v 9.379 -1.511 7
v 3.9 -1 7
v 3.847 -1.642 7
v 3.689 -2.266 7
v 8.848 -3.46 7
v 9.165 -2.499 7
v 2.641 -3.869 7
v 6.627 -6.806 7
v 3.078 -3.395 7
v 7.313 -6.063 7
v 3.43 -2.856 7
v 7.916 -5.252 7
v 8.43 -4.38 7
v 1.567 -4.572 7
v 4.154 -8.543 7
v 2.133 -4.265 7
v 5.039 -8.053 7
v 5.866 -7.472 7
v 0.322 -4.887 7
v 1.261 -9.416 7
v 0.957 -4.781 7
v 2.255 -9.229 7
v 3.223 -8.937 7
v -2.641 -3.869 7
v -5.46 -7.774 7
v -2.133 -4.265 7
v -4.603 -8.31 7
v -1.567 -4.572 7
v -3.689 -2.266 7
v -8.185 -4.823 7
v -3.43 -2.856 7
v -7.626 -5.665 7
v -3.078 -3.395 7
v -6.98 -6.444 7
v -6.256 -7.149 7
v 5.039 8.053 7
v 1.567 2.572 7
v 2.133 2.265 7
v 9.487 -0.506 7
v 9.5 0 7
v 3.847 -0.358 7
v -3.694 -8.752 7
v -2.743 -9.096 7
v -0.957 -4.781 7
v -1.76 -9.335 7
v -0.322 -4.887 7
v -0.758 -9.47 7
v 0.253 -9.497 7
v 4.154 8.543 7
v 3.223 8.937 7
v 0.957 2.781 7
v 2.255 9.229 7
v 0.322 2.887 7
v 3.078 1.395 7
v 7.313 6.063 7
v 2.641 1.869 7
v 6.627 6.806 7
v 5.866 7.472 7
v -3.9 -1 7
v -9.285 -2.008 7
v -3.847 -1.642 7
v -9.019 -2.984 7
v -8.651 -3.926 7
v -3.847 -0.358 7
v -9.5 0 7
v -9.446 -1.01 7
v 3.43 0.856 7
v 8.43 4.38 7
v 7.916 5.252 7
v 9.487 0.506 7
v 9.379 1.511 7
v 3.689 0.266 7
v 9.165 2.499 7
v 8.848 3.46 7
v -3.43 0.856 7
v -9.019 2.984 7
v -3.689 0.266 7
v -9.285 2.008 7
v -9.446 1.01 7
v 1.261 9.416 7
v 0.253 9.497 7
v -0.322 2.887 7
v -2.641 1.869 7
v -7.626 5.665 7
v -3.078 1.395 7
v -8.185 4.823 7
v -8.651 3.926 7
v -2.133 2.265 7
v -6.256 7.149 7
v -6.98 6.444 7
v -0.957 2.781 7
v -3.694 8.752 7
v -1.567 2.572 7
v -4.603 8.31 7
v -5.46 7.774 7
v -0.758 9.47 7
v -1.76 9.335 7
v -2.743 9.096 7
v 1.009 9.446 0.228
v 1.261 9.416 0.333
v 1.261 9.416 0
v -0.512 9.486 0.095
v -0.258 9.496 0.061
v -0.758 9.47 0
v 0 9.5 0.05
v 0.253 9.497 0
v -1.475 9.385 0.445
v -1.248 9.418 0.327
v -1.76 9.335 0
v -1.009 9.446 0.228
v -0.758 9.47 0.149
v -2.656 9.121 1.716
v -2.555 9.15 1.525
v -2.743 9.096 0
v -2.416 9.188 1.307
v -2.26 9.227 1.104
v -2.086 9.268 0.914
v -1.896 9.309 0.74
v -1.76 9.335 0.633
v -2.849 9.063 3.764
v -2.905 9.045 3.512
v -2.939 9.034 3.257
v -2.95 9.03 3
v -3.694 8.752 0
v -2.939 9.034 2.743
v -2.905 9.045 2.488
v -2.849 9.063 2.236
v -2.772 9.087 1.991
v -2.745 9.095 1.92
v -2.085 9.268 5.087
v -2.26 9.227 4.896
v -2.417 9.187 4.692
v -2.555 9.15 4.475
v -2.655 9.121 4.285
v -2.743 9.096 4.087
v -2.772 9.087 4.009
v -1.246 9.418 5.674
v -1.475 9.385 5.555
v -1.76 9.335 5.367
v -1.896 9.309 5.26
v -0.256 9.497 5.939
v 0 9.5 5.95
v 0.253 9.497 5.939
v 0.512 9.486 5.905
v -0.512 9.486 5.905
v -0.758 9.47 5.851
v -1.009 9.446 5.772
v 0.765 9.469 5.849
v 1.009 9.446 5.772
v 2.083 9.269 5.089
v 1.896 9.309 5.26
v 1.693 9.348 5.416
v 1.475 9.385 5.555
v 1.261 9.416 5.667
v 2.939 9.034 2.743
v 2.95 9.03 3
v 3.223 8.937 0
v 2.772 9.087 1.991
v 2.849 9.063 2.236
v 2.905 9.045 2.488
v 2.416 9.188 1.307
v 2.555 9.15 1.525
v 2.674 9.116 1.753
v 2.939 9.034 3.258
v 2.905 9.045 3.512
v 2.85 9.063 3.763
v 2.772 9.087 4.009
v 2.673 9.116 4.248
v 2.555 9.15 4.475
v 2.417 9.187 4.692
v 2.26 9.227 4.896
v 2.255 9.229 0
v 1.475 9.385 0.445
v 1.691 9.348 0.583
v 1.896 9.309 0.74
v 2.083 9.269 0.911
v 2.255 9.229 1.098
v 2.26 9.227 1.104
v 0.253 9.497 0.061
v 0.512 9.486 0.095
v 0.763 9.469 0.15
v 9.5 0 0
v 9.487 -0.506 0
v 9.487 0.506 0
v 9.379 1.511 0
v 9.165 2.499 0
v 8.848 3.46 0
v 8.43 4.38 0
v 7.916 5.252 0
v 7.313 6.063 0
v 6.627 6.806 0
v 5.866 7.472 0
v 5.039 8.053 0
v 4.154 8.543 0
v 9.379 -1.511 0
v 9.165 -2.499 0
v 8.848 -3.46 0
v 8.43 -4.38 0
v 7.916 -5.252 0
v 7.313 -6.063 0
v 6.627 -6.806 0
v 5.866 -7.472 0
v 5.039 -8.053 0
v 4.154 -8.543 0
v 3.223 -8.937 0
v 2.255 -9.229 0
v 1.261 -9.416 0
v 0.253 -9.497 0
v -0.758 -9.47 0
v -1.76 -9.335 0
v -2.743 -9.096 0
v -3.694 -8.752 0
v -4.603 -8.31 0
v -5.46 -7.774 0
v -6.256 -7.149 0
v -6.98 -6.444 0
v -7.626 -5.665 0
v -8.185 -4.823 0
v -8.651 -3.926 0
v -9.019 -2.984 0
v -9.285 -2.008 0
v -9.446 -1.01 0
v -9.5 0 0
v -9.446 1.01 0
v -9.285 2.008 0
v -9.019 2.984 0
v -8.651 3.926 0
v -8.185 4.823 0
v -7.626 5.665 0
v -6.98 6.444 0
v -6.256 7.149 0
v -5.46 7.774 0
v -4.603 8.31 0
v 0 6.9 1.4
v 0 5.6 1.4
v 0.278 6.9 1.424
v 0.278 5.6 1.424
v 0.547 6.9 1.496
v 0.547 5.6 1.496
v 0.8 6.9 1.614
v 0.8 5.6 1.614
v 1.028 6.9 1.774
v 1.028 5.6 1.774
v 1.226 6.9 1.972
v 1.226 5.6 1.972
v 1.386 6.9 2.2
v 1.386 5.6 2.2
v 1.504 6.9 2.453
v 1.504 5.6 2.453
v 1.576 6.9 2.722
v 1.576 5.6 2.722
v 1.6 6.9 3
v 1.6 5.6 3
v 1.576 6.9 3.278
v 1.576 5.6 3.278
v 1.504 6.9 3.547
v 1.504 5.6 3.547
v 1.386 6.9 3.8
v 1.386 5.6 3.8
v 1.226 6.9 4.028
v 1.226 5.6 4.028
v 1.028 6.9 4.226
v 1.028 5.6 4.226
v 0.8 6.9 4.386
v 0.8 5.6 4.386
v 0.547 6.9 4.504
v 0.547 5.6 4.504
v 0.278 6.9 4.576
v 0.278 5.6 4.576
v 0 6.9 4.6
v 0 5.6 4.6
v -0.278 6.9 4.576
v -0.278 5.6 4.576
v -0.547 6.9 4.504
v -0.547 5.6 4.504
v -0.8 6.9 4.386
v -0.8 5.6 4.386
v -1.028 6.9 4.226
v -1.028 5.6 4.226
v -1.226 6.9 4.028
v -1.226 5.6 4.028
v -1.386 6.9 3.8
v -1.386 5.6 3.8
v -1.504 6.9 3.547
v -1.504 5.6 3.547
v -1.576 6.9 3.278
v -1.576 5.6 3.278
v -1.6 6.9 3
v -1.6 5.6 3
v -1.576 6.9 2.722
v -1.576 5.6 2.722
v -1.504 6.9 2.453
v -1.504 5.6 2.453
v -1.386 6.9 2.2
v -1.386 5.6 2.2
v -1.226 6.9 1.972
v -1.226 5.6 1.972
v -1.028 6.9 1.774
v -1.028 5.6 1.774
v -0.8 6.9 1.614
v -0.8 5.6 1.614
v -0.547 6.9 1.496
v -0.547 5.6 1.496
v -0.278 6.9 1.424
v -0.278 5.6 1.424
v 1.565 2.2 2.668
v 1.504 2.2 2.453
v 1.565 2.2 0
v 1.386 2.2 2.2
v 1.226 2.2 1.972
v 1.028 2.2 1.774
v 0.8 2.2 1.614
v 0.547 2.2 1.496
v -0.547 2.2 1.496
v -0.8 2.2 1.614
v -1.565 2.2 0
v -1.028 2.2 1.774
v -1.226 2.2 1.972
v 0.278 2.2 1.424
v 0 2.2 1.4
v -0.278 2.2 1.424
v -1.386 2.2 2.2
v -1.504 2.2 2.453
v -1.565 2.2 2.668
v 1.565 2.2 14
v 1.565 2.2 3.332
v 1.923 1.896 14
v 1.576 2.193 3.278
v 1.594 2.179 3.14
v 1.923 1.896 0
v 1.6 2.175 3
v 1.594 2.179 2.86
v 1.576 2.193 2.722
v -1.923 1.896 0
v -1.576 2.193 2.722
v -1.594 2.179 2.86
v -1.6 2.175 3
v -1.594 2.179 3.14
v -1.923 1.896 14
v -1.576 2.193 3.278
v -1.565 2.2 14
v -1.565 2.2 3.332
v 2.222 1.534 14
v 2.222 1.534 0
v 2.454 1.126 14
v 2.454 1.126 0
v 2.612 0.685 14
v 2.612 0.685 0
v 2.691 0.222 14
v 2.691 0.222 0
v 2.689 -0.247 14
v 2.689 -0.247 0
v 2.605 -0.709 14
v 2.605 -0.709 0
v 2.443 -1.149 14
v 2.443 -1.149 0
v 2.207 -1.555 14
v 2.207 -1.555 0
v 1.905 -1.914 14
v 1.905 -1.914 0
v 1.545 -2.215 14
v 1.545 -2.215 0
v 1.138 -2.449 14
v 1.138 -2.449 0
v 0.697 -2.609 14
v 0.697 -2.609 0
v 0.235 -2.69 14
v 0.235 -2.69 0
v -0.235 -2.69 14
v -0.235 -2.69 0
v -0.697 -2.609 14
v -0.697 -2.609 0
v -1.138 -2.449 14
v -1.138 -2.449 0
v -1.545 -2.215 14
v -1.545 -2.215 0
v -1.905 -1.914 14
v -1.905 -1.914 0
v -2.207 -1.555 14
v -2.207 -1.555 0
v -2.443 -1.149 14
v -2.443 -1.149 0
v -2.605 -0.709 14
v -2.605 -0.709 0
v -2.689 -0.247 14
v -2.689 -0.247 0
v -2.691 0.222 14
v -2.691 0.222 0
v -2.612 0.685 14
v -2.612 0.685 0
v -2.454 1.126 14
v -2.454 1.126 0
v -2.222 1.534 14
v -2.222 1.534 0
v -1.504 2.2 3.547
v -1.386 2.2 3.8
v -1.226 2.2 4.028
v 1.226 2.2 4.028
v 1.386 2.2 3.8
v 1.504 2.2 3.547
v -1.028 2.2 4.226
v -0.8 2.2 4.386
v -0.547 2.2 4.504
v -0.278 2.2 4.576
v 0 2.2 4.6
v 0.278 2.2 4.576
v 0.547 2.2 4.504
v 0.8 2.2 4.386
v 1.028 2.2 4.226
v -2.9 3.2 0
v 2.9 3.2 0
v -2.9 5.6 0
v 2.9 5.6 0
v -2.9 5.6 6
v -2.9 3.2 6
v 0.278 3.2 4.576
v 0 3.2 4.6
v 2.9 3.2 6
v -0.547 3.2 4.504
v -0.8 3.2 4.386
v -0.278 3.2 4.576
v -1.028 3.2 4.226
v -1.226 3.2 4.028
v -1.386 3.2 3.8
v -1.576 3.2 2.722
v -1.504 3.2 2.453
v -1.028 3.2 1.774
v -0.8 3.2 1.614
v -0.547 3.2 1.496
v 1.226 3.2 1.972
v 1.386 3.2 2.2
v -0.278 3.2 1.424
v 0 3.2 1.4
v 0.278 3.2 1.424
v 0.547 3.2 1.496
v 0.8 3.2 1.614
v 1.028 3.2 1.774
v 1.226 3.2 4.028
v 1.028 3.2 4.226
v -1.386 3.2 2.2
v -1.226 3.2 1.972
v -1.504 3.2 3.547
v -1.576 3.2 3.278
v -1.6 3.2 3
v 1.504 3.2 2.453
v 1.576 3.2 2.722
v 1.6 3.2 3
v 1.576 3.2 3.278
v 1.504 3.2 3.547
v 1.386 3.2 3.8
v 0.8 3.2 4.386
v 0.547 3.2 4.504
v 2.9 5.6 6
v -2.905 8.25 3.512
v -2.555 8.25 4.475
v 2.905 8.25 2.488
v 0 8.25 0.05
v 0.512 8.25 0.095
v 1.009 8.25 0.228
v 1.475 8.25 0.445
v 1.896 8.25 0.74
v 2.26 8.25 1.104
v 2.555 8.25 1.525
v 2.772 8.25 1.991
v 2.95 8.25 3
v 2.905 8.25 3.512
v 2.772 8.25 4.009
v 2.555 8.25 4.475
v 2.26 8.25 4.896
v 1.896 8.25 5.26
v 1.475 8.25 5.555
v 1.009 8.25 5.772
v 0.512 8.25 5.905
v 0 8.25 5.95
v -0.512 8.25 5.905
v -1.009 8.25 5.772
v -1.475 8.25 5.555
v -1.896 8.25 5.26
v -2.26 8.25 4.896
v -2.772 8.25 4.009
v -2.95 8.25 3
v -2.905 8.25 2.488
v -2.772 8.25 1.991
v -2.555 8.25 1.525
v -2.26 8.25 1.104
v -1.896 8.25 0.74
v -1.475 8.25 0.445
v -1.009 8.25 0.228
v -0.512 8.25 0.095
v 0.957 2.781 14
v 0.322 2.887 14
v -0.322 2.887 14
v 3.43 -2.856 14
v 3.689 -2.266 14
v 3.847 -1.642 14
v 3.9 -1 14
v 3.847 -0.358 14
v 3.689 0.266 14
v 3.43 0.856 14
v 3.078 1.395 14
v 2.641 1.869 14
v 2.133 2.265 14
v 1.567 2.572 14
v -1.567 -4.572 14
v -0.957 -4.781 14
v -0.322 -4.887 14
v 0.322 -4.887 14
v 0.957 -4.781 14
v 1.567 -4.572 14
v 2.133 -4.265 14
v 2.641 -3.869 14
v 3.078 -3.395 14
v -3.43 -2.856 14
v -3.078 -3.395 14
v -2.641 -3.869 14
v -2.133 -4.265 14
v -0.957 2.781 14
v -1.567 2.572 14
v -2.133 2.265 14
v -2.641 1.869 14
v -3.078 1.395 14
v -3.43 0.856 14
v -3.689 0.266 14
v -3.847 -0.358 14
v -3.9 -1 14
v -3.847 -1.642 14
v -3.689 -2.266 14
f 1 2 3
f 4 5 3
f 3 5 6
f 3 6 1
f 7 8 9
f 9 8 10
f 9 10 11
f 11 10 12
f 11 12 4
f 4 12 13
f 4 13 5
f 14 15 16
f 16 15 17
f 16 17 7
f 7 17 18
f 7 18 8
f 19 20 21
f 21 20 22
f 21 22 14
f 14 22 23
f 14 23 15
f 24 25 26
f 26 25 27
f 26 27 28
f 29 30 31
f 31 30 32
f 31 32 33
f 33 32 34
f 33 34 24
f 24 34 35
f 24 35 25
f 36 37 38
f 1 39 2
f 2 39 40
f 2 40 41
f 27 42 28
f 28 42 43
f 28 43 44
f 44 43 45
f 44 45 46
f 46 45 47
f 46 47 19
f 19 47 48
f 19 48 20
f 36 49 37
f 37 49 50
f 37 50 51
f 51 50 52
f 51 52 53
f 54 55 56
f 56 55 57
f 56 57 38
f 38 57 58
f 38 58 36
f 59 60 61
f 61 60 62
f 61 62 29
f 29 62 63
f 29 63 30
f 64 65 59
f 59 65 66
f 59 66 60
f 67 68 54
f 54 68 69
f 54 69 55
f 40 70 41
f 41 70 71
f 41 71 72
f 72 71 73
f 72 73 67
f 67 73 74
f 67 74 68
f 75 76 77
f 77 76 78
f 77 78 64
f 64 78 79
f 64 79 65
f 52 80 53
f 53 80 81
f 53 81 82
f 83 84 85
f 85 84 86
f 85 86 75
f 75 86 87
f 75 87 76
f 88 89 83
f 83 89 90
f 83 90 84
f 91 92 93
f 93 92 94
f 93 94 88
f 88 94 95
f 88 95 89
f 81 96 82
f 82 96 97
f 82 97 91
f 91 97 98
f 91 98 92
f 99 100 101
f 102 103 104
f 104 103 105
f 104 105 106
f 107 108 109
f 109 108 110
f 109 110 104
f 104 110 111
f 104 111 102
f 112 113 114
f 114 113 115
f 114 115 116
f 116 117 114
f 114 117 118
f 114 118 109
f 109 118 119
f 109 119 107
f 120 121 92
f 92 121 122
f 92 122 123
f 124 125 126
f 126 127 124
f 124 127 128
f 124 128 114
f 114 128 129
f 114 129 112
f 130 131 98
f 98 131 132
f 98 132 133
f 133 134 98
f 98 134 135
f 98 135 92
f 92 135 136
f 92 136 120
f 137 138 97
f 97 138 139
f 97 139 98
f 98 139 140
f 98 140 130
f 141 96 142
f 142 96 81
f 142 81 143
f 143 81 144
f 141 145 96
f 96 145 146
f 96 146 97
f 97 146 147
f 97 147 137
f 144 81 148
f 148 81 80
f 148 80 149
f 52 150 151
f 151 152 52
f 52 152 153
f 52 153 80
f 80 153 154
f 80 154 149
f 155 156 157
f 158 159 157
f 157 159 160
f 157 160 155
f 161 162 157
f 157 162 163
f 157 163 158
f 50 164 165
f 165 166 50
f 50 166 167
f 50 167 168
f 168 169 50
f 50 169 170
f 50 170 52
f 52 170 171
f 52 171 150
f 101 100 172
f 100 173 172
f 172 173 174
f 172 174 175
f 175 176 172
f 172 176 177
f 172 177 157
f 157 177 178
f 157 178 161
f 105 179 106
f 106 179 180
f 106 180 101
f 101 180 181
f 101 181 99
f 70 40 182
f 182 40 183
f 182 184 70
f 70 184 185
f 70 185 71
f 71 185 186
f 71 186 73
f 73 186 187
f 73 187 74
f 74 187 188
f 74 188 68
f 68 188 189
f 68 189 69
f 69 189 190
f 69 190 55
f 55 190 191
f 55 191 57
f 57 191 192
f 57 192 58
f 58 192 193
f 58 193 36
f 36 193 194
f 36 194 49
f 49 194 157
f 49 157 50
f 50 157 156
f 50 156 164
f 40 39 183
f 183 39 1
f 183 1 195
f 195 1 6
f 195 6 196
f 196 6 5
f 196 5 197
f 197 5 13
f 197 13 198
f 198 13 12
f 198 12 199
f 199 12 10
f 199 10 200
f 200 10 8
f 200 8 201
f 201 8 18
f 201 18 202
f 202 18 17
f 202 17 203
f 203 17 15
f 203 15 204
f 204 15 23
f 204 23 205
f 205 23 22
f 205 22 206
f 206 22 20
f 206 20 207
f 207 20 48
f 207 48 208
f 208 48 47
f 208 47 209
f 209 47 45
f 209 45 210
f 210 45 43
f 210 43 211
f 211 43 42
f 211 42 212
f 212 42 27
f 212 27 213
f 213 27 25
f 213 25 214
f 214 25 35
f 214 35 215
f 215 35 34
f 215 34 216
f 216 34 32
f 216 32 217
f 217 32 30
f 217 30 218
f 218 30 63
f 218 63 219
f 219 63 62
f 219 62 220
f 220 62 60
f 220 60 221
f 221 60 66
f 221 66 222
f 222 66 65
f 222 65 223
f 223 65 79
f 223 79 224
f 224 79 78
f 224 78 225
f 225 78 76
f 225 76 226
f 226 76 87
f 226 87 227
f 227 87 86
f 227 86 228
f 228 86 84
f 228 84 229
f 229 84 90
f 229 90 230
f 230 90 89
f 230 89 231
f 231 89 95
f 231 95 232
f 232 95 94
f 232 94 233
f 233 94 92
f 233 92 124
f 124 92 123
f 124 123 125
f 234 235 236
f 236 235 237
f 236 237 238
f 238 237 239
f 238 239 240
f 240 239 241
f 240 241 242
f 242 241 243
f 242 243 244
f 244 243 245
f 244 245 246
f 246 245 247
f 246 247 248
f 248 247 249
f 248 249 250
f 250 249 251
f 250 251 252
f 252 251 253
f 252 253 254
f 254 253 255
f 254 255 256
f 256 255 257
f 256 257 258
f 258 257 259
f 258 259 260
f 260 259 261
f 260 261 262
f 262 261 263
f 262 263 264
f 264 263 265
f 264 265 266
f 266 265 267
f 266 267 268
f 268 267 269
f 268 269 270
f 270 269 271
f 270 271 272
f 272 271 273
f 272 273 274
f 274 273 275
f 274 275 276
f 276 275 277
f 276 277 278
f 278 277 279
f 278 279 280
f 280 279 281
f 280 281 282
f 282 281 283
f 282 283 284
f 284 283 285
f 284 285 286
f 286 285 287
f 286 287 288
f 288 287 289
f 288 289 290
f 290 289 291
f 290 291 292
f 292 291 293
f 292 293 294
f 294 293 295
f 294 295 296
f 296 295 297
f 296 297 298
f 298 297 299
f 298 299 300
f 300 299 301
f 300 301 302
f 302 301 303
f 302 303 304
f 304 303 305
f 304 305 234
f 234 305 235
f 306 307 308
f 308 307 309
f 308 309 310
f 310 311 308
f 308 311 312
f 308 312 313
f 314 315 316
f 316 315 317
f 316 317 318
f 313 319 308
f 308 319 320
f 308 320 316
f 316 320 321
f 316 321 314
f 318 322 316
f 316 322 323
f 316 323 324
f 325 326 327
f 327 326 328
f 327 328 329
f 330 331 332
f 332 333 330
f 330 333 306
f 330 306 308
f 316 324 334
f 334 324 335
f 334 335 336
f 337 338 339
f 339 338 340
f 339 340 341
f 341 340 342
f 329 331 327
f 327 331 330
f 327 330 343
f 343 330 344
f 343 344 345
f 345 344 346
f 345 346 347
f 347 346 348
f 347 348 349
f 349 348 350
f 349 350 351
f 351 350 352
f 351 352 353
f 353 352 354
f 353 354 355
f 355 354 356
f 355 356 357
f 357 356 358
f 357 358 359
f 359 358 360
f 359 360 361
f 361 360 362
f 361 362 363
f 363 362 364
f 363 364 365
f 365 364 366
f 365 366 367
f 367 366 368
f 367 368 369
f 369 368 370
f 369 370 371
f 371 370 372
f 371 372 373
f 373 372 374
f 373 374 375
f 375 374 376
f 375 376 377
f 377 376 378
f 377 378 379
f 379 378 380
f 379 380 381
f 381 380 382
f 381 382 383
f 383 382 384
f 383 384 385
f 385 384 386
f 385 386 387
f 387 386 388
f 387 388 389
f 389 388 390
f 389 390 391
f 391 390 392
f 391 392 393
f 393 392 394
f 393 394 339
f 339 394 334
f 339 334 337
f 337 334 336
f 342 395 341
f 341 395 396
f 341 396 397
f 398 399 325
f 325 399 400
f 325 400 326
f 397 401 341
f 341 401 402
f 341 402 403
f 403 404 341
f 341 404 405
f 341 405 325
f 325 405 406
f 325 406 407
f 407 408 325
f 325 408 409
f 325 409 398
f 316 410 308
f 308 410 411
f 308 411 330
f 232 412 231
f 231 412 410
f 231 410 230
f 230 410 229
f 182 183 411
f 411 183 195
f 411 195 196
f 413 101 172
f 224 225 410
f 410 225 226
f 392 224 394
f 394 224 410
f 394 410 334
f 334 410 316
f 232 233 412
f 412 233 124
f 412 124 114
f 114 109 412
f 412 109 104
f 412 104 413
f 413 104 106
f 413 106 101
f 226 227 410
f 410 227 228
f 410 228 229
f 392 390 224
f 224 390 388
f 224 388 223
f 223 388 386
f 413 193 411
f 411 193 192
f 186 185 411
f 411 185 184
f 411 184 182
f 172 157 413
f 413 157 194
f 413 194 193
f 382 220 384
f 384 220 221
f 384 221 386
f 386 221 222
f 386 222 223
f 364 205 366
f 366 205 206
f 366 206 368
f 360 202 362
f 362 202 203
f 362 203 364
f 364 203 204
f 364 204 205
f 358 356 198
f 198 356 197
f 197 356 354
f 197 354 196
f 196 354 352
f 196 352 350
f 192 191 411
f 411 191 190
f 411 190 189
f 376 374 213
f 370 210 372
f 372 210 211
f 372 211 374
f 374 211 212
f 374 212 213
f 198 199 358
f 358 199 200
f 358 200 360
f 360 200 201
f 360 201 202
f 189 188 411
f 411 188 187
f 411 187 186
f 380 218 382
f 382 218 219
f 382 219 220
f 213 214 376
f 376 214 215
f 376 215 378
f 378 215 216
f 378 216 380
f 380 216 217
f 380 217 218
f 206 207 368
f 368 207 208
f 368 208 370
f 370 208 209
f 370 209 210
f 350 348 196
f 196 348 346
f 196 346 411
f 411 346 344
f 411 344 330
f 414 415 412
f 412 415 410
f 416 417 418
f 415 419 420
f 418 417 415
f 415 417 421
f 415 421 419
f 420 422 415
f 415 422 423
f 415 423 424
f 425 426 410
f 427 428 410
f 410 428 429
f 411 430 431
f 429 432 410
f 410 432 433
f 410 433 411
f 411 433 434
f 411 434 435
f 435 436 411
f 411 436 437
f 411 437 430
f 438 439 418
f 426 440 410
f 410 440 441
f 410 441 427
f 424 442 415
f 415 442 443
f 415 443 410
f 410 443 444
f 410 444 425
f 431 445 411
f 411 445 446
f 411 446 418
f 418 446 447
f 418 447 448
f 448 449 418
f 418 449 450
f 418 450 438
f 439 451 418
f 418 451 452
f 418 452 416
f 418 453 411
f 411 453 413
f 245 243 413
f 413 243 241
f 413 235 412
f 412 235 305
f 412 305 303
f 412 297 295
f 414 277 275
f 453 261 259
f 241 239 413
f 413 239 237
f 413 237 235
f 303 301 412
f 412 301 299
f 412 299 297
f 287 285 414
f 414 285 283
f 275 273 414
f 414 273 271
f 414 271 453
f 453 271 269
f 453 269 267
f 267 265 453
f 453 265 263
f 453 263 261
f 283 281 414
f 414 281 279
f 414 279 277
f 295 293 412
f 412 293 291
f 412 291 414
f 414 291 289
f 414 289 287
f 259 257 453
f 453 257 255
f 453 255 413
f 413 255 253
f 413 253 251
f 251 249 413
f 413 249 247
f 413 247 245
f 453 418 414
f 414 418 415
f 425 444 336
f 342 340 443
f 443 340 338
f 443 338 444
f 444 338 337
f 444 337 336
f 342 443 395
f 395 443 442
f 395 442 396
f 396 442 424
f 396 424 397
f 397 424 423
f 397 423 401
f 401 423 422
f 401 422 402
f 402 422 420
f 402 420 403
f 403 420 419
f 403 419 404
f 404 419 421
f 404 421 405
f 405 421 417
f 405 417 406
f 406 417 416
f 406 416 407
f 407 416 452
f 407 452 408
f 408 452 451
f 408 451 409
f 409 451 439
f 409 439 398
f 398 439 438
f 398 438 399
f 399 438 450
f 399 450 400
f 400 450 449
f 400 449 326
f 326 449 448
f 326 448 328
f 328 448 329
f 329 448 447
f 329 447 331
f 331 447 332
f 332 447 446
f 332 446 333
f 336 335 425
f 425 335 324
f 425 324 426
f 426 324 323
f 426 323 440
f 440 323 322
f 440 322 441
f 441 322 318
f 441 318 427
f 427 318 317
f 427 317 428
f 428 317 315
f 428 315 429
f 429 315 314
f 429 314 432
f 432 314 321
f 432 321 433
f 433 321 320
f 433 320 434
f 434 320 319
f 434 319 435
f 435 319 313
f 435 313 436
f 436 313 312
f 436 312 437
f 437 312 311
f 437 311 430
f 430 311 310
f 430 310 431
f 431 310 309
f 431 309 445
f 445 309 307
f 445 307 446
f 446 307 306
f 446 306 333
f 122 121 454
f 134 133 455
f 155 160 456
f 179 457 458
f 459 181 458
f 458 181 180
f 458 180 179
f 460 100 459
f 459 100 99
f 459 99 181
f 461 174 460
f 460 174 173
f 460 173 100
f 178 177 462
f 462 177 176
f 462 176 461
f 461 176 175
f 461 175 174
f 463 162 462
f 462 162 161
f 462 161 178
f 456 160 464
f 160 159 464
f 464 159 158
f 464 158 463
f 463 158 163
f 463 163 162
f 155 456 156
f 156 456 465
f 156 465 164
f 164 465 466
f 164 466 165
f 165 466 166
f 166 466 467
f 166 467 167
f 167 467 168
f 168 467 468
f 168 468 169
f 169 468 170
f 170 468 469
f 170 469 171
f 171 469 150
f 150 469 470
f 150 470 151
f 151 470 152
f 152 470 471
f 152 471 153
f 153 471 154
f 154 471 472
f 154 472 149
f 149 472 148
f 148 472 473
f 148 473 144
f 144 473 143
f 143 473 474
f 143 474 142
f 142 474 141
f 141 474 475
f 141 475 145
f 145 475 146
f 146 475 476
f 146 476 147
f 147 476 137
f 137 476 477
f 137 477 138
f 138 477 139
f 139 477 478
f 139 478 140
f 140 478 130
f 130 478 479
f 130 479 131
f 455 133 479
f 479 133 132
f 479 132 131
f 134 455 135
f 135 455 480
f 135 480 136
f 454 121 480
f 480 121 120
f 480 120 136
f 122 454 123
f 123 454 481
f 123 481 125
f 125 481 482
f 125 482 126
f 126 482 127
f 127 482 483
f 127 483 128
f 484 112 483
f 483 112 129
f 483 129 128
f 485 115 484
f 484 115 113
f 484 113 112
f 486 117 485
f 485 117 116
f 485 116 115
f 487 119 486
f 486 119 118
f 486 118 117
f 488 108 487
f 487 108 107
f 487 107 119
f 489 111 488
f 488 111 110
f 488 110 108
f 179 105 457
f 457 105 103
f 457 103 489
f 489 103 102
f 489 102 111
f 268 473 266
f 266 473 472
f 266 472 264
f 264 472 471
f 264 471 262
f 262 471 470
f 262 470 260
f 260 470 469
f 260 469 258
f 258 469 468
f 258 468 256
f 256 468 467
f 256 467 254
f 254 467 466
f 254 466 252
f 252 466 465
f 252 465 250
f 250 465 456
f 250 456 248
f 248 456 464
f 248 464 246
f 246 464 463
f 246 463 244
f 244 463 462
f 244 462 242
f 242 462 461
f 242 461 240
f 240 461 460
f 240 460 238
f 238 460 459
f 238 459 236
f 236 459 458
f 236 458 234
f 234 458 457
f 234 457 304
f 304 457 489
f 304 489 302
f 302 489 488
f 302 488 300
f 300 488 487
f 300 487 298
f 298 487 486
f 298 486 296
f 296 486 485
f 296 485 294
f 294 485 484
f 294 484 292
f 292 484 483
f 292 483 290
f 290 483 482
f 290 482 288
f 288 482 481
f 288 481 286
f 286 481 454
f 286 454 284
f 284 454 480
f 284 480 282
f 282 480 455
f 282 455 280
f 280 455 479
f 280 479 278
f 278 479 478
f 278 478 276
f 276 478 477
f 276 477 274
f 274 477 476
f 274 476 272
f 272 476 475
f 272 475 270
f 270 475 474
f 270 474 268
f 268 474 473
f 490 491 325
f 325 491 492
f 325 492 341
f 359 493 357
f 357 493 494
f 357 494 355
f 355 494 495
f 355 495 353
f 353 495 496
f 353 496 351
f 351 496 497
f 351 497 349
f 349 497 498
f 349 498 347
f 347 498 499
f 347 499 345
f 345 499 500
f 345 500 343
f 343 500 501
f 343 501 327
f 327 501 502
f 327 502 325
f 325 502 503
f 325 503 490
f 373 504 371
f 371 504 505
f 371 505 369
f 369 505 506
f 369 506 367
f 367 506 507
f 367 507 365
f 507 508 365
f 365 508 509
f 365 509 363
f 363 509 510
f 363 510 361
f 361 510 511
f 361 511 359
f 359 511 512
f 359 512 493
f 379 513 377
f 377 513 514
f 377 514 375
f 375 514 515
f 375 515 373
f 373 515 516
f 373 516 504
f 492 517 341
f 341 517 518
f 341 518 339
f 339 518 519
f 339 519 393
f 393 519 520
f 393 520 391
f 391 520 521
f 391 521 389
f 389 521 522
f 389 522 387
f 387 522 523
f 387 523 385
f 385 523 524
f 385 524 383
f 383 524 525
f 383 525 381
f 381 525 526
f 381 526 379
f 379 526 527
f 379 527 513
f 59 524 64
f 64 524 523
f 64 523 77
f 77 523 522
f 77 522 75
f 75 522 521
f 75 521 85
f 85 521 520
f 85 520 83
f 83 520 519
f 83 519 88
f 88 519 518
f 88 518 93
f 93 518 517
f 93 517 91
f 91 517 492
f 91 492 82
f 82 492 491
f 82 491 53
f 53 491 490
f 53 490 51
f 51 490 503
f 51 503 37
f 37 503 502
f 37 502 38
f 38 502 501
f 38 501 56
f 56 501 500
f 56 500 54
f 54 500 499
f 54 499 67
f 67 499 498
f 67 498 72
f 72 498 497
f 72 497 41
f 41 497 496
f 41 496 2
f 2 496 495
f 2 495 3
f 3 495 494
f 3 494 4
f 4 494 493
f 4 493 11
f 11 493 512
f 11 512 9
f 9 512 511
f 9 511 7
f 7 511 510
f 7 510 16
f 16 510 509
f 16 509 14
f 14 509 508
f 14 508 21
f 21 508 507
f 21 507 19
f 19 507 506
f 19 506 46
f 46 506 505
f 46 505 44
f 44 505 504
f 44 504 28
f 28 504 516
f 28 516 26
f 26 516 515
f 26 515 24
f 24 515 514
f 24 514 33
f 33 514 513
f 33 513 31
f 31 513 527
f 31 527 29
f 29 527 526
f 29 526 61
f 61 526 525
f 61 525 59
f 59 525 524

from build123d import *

# Parameters (mm, degrees)
ESQUISSE1_R                         = 9.5
BOSS_EXTRU_1_DEPTH                  = 7
ESQUISSE2_W                         = 5.8
ESQUISSE2_H                         = 2.4
ENL_V_MAT_EXTRU_1_DEPTH             = 6
ENL_V_MAT_EXTRU_2_REACH             = 19.336
ESQUISSE3_R                         = 1.6
ENL_V_MAT_EXTRU_2_DIRECTION_2_REACH = 19.336
ESQUISSE7_R                         = 2.95
ENL_V_MAT_EXTRU_8_DEPTH             = 22.858865638
CHANFREIN1_SIZE                     = 2
ESQUISSE9_R                         = 3.9
BOSS_EXTRU_2_DEPTH                  = 7


with BuildPart() as part:
    # Esquisse1 → Boss.-Extru.1 (new body)
    with BuildSketch(Plane.XY):
        Circle(ESQUISSE1_R)
        with BuildLine():
            Line((-1.565247584, 2.2), (1.565247584, 2.2))
            ThreePointArc((1.565247584, 2.2), (0, -2.7), (-1.565247584, 2.2))
        make_face(mode=Mode.SUBTRACT)
    extrude(amount=BOSS_EXTRU_1_DEPTH)

    # Esquisse2 → Enlèv. mat.-Extru.1 (cut)
    with BuildSketch(Plane(origin=(0, 0, 0), x_dir=(-1, 0, 0), z_dir=(0, 0, -1))):
        with Locations((0, 4.4)):
            Rectangle(ESQUISSE2_W, ESQUISSE2_H)
    extrude(amount=-ENL_V_MAT_EXTRU_1_DEPTH, mode=Mode.SUBTRACT)

    # Esquisse3 → Enlèv. mat.-Extru.2 (cut, up to next)
    with BuildSketch(Plane(origin=(0, 3.2, 0), x_dir=(1, 0, 0), z_dir=(0, 1, 0)), mode=Mode.PRIVATE) as enl_v_mat_extru_2_sk1:
        with Locations(Location((0, -3, 0), (0, 0, 90))):
            Circle(ESQUISSE3_R)
    enl_v_mat_extru_2_tool1 = extrude(enl_v_mat_extru_2_sk1.sketch, amount=-ENL_V_MAT_EXTRU_2_REACH, mode=Mode.PRIVATE) & part.part
    add(enl_v_mat_extru_2_tool1.solids().sort_by_distance((0, 3.2, 3))[0], mode=Mode.SUBTRACT)

    # Esquisse3 → Enlèv. mat.-Extru.2 direction 2 (cut, up to next)
    with BuildSketch(Plane(origin=(0, 3.2, 0), x_dir=(1, 0, 0), z_dir=(0, 1, 0)), mode=Mode.PRIVATE) as enl_v_mat_extru_2_direction_2_sk1:
        with Locations(Location((0, -3, 0), (0, 0, 90))):
            Circle(ESQUISSE3_R)
    enl_v_mat_extru_2_direction_2_tool1 = extrude(enl_v_mat_extru_2_direction_2_sk1.sketch, amount=ENL_V_MAT_EXTRU_2_DIRECTION_2_REACH, mode=Mode.PRIVATE) & part.part
    add(enl_v_mat_extru_2_direction_2_tool1.solids().sort_by_distance((0, 3.2, 3))[0], mode=Mode.SUBTRACT)

    # Esquisse7 → Enlèv. mat.-Extru.8 (cut, through all)
    with BuildSketch(Plane(origin=(0, 8.9, 0), x_dir=(1, 0, 0), z_dir=(0, 1, 0))):
        with Locations(Location((0, -3, 0), (0, 0, 90))):
            Circle(ESQUISSE7_R)
    extrude(amount=ENL_V_MAT_EXTRU_8_DEPTH, mode=Mode.SUBTRACT)

    # Chanfrein1
    # the kernel refuses this chamfer: 2 mm, written as the material it takes off along each edge
    with BuildSketch(Plane(origin=(0, 8.9, 3), x_dir=(0, 0, -1), z_dir=(-1, 0, 0))) as chanfrein1_piece_1_section:
        Polygon((1.6 + CHANFREIN1_SIZE, 0), (1.6, CHANFREIN1_SIZE), (1.6, 0), align=None)
    chanfrein1_piece_1 = revolve(axis=Axis((0, 8.9, 3), (0, -1, 0)), mode=Mode.PRIVATE)
    chanfrein1_piece_1 = chanfrein1_piece_1 & Plane(origin=(0, 7.567667742, 3), x_dir=(0, 0, -1), z_dir=(0, -1, 0)) * Cylinder(2.95, 15, mode=Mode.PRIVATE)
    add(chanfrein1_piece_1, mode=Mode.SUBTRACT)

    # Esquisse9 → Boss.-Extru.2 (add)
    with BuildSketch(Plane.XY.offset(7)):
        with Locations((0, -1)):
            Circle(ESQUISSE9_R)
        with BuildLine():
            Line((-1.565247584, 2.2), (1.565247584, 2.2))
            ThreePointArc((1.565247584, 2.2), (0, -2.7), (-1.565247584, 2.2))
        make_face(mode=Mode.SUBTRACT)
    extrude(amount=BOSS_EXTRU_2_DEPTH)


solid = part.part
